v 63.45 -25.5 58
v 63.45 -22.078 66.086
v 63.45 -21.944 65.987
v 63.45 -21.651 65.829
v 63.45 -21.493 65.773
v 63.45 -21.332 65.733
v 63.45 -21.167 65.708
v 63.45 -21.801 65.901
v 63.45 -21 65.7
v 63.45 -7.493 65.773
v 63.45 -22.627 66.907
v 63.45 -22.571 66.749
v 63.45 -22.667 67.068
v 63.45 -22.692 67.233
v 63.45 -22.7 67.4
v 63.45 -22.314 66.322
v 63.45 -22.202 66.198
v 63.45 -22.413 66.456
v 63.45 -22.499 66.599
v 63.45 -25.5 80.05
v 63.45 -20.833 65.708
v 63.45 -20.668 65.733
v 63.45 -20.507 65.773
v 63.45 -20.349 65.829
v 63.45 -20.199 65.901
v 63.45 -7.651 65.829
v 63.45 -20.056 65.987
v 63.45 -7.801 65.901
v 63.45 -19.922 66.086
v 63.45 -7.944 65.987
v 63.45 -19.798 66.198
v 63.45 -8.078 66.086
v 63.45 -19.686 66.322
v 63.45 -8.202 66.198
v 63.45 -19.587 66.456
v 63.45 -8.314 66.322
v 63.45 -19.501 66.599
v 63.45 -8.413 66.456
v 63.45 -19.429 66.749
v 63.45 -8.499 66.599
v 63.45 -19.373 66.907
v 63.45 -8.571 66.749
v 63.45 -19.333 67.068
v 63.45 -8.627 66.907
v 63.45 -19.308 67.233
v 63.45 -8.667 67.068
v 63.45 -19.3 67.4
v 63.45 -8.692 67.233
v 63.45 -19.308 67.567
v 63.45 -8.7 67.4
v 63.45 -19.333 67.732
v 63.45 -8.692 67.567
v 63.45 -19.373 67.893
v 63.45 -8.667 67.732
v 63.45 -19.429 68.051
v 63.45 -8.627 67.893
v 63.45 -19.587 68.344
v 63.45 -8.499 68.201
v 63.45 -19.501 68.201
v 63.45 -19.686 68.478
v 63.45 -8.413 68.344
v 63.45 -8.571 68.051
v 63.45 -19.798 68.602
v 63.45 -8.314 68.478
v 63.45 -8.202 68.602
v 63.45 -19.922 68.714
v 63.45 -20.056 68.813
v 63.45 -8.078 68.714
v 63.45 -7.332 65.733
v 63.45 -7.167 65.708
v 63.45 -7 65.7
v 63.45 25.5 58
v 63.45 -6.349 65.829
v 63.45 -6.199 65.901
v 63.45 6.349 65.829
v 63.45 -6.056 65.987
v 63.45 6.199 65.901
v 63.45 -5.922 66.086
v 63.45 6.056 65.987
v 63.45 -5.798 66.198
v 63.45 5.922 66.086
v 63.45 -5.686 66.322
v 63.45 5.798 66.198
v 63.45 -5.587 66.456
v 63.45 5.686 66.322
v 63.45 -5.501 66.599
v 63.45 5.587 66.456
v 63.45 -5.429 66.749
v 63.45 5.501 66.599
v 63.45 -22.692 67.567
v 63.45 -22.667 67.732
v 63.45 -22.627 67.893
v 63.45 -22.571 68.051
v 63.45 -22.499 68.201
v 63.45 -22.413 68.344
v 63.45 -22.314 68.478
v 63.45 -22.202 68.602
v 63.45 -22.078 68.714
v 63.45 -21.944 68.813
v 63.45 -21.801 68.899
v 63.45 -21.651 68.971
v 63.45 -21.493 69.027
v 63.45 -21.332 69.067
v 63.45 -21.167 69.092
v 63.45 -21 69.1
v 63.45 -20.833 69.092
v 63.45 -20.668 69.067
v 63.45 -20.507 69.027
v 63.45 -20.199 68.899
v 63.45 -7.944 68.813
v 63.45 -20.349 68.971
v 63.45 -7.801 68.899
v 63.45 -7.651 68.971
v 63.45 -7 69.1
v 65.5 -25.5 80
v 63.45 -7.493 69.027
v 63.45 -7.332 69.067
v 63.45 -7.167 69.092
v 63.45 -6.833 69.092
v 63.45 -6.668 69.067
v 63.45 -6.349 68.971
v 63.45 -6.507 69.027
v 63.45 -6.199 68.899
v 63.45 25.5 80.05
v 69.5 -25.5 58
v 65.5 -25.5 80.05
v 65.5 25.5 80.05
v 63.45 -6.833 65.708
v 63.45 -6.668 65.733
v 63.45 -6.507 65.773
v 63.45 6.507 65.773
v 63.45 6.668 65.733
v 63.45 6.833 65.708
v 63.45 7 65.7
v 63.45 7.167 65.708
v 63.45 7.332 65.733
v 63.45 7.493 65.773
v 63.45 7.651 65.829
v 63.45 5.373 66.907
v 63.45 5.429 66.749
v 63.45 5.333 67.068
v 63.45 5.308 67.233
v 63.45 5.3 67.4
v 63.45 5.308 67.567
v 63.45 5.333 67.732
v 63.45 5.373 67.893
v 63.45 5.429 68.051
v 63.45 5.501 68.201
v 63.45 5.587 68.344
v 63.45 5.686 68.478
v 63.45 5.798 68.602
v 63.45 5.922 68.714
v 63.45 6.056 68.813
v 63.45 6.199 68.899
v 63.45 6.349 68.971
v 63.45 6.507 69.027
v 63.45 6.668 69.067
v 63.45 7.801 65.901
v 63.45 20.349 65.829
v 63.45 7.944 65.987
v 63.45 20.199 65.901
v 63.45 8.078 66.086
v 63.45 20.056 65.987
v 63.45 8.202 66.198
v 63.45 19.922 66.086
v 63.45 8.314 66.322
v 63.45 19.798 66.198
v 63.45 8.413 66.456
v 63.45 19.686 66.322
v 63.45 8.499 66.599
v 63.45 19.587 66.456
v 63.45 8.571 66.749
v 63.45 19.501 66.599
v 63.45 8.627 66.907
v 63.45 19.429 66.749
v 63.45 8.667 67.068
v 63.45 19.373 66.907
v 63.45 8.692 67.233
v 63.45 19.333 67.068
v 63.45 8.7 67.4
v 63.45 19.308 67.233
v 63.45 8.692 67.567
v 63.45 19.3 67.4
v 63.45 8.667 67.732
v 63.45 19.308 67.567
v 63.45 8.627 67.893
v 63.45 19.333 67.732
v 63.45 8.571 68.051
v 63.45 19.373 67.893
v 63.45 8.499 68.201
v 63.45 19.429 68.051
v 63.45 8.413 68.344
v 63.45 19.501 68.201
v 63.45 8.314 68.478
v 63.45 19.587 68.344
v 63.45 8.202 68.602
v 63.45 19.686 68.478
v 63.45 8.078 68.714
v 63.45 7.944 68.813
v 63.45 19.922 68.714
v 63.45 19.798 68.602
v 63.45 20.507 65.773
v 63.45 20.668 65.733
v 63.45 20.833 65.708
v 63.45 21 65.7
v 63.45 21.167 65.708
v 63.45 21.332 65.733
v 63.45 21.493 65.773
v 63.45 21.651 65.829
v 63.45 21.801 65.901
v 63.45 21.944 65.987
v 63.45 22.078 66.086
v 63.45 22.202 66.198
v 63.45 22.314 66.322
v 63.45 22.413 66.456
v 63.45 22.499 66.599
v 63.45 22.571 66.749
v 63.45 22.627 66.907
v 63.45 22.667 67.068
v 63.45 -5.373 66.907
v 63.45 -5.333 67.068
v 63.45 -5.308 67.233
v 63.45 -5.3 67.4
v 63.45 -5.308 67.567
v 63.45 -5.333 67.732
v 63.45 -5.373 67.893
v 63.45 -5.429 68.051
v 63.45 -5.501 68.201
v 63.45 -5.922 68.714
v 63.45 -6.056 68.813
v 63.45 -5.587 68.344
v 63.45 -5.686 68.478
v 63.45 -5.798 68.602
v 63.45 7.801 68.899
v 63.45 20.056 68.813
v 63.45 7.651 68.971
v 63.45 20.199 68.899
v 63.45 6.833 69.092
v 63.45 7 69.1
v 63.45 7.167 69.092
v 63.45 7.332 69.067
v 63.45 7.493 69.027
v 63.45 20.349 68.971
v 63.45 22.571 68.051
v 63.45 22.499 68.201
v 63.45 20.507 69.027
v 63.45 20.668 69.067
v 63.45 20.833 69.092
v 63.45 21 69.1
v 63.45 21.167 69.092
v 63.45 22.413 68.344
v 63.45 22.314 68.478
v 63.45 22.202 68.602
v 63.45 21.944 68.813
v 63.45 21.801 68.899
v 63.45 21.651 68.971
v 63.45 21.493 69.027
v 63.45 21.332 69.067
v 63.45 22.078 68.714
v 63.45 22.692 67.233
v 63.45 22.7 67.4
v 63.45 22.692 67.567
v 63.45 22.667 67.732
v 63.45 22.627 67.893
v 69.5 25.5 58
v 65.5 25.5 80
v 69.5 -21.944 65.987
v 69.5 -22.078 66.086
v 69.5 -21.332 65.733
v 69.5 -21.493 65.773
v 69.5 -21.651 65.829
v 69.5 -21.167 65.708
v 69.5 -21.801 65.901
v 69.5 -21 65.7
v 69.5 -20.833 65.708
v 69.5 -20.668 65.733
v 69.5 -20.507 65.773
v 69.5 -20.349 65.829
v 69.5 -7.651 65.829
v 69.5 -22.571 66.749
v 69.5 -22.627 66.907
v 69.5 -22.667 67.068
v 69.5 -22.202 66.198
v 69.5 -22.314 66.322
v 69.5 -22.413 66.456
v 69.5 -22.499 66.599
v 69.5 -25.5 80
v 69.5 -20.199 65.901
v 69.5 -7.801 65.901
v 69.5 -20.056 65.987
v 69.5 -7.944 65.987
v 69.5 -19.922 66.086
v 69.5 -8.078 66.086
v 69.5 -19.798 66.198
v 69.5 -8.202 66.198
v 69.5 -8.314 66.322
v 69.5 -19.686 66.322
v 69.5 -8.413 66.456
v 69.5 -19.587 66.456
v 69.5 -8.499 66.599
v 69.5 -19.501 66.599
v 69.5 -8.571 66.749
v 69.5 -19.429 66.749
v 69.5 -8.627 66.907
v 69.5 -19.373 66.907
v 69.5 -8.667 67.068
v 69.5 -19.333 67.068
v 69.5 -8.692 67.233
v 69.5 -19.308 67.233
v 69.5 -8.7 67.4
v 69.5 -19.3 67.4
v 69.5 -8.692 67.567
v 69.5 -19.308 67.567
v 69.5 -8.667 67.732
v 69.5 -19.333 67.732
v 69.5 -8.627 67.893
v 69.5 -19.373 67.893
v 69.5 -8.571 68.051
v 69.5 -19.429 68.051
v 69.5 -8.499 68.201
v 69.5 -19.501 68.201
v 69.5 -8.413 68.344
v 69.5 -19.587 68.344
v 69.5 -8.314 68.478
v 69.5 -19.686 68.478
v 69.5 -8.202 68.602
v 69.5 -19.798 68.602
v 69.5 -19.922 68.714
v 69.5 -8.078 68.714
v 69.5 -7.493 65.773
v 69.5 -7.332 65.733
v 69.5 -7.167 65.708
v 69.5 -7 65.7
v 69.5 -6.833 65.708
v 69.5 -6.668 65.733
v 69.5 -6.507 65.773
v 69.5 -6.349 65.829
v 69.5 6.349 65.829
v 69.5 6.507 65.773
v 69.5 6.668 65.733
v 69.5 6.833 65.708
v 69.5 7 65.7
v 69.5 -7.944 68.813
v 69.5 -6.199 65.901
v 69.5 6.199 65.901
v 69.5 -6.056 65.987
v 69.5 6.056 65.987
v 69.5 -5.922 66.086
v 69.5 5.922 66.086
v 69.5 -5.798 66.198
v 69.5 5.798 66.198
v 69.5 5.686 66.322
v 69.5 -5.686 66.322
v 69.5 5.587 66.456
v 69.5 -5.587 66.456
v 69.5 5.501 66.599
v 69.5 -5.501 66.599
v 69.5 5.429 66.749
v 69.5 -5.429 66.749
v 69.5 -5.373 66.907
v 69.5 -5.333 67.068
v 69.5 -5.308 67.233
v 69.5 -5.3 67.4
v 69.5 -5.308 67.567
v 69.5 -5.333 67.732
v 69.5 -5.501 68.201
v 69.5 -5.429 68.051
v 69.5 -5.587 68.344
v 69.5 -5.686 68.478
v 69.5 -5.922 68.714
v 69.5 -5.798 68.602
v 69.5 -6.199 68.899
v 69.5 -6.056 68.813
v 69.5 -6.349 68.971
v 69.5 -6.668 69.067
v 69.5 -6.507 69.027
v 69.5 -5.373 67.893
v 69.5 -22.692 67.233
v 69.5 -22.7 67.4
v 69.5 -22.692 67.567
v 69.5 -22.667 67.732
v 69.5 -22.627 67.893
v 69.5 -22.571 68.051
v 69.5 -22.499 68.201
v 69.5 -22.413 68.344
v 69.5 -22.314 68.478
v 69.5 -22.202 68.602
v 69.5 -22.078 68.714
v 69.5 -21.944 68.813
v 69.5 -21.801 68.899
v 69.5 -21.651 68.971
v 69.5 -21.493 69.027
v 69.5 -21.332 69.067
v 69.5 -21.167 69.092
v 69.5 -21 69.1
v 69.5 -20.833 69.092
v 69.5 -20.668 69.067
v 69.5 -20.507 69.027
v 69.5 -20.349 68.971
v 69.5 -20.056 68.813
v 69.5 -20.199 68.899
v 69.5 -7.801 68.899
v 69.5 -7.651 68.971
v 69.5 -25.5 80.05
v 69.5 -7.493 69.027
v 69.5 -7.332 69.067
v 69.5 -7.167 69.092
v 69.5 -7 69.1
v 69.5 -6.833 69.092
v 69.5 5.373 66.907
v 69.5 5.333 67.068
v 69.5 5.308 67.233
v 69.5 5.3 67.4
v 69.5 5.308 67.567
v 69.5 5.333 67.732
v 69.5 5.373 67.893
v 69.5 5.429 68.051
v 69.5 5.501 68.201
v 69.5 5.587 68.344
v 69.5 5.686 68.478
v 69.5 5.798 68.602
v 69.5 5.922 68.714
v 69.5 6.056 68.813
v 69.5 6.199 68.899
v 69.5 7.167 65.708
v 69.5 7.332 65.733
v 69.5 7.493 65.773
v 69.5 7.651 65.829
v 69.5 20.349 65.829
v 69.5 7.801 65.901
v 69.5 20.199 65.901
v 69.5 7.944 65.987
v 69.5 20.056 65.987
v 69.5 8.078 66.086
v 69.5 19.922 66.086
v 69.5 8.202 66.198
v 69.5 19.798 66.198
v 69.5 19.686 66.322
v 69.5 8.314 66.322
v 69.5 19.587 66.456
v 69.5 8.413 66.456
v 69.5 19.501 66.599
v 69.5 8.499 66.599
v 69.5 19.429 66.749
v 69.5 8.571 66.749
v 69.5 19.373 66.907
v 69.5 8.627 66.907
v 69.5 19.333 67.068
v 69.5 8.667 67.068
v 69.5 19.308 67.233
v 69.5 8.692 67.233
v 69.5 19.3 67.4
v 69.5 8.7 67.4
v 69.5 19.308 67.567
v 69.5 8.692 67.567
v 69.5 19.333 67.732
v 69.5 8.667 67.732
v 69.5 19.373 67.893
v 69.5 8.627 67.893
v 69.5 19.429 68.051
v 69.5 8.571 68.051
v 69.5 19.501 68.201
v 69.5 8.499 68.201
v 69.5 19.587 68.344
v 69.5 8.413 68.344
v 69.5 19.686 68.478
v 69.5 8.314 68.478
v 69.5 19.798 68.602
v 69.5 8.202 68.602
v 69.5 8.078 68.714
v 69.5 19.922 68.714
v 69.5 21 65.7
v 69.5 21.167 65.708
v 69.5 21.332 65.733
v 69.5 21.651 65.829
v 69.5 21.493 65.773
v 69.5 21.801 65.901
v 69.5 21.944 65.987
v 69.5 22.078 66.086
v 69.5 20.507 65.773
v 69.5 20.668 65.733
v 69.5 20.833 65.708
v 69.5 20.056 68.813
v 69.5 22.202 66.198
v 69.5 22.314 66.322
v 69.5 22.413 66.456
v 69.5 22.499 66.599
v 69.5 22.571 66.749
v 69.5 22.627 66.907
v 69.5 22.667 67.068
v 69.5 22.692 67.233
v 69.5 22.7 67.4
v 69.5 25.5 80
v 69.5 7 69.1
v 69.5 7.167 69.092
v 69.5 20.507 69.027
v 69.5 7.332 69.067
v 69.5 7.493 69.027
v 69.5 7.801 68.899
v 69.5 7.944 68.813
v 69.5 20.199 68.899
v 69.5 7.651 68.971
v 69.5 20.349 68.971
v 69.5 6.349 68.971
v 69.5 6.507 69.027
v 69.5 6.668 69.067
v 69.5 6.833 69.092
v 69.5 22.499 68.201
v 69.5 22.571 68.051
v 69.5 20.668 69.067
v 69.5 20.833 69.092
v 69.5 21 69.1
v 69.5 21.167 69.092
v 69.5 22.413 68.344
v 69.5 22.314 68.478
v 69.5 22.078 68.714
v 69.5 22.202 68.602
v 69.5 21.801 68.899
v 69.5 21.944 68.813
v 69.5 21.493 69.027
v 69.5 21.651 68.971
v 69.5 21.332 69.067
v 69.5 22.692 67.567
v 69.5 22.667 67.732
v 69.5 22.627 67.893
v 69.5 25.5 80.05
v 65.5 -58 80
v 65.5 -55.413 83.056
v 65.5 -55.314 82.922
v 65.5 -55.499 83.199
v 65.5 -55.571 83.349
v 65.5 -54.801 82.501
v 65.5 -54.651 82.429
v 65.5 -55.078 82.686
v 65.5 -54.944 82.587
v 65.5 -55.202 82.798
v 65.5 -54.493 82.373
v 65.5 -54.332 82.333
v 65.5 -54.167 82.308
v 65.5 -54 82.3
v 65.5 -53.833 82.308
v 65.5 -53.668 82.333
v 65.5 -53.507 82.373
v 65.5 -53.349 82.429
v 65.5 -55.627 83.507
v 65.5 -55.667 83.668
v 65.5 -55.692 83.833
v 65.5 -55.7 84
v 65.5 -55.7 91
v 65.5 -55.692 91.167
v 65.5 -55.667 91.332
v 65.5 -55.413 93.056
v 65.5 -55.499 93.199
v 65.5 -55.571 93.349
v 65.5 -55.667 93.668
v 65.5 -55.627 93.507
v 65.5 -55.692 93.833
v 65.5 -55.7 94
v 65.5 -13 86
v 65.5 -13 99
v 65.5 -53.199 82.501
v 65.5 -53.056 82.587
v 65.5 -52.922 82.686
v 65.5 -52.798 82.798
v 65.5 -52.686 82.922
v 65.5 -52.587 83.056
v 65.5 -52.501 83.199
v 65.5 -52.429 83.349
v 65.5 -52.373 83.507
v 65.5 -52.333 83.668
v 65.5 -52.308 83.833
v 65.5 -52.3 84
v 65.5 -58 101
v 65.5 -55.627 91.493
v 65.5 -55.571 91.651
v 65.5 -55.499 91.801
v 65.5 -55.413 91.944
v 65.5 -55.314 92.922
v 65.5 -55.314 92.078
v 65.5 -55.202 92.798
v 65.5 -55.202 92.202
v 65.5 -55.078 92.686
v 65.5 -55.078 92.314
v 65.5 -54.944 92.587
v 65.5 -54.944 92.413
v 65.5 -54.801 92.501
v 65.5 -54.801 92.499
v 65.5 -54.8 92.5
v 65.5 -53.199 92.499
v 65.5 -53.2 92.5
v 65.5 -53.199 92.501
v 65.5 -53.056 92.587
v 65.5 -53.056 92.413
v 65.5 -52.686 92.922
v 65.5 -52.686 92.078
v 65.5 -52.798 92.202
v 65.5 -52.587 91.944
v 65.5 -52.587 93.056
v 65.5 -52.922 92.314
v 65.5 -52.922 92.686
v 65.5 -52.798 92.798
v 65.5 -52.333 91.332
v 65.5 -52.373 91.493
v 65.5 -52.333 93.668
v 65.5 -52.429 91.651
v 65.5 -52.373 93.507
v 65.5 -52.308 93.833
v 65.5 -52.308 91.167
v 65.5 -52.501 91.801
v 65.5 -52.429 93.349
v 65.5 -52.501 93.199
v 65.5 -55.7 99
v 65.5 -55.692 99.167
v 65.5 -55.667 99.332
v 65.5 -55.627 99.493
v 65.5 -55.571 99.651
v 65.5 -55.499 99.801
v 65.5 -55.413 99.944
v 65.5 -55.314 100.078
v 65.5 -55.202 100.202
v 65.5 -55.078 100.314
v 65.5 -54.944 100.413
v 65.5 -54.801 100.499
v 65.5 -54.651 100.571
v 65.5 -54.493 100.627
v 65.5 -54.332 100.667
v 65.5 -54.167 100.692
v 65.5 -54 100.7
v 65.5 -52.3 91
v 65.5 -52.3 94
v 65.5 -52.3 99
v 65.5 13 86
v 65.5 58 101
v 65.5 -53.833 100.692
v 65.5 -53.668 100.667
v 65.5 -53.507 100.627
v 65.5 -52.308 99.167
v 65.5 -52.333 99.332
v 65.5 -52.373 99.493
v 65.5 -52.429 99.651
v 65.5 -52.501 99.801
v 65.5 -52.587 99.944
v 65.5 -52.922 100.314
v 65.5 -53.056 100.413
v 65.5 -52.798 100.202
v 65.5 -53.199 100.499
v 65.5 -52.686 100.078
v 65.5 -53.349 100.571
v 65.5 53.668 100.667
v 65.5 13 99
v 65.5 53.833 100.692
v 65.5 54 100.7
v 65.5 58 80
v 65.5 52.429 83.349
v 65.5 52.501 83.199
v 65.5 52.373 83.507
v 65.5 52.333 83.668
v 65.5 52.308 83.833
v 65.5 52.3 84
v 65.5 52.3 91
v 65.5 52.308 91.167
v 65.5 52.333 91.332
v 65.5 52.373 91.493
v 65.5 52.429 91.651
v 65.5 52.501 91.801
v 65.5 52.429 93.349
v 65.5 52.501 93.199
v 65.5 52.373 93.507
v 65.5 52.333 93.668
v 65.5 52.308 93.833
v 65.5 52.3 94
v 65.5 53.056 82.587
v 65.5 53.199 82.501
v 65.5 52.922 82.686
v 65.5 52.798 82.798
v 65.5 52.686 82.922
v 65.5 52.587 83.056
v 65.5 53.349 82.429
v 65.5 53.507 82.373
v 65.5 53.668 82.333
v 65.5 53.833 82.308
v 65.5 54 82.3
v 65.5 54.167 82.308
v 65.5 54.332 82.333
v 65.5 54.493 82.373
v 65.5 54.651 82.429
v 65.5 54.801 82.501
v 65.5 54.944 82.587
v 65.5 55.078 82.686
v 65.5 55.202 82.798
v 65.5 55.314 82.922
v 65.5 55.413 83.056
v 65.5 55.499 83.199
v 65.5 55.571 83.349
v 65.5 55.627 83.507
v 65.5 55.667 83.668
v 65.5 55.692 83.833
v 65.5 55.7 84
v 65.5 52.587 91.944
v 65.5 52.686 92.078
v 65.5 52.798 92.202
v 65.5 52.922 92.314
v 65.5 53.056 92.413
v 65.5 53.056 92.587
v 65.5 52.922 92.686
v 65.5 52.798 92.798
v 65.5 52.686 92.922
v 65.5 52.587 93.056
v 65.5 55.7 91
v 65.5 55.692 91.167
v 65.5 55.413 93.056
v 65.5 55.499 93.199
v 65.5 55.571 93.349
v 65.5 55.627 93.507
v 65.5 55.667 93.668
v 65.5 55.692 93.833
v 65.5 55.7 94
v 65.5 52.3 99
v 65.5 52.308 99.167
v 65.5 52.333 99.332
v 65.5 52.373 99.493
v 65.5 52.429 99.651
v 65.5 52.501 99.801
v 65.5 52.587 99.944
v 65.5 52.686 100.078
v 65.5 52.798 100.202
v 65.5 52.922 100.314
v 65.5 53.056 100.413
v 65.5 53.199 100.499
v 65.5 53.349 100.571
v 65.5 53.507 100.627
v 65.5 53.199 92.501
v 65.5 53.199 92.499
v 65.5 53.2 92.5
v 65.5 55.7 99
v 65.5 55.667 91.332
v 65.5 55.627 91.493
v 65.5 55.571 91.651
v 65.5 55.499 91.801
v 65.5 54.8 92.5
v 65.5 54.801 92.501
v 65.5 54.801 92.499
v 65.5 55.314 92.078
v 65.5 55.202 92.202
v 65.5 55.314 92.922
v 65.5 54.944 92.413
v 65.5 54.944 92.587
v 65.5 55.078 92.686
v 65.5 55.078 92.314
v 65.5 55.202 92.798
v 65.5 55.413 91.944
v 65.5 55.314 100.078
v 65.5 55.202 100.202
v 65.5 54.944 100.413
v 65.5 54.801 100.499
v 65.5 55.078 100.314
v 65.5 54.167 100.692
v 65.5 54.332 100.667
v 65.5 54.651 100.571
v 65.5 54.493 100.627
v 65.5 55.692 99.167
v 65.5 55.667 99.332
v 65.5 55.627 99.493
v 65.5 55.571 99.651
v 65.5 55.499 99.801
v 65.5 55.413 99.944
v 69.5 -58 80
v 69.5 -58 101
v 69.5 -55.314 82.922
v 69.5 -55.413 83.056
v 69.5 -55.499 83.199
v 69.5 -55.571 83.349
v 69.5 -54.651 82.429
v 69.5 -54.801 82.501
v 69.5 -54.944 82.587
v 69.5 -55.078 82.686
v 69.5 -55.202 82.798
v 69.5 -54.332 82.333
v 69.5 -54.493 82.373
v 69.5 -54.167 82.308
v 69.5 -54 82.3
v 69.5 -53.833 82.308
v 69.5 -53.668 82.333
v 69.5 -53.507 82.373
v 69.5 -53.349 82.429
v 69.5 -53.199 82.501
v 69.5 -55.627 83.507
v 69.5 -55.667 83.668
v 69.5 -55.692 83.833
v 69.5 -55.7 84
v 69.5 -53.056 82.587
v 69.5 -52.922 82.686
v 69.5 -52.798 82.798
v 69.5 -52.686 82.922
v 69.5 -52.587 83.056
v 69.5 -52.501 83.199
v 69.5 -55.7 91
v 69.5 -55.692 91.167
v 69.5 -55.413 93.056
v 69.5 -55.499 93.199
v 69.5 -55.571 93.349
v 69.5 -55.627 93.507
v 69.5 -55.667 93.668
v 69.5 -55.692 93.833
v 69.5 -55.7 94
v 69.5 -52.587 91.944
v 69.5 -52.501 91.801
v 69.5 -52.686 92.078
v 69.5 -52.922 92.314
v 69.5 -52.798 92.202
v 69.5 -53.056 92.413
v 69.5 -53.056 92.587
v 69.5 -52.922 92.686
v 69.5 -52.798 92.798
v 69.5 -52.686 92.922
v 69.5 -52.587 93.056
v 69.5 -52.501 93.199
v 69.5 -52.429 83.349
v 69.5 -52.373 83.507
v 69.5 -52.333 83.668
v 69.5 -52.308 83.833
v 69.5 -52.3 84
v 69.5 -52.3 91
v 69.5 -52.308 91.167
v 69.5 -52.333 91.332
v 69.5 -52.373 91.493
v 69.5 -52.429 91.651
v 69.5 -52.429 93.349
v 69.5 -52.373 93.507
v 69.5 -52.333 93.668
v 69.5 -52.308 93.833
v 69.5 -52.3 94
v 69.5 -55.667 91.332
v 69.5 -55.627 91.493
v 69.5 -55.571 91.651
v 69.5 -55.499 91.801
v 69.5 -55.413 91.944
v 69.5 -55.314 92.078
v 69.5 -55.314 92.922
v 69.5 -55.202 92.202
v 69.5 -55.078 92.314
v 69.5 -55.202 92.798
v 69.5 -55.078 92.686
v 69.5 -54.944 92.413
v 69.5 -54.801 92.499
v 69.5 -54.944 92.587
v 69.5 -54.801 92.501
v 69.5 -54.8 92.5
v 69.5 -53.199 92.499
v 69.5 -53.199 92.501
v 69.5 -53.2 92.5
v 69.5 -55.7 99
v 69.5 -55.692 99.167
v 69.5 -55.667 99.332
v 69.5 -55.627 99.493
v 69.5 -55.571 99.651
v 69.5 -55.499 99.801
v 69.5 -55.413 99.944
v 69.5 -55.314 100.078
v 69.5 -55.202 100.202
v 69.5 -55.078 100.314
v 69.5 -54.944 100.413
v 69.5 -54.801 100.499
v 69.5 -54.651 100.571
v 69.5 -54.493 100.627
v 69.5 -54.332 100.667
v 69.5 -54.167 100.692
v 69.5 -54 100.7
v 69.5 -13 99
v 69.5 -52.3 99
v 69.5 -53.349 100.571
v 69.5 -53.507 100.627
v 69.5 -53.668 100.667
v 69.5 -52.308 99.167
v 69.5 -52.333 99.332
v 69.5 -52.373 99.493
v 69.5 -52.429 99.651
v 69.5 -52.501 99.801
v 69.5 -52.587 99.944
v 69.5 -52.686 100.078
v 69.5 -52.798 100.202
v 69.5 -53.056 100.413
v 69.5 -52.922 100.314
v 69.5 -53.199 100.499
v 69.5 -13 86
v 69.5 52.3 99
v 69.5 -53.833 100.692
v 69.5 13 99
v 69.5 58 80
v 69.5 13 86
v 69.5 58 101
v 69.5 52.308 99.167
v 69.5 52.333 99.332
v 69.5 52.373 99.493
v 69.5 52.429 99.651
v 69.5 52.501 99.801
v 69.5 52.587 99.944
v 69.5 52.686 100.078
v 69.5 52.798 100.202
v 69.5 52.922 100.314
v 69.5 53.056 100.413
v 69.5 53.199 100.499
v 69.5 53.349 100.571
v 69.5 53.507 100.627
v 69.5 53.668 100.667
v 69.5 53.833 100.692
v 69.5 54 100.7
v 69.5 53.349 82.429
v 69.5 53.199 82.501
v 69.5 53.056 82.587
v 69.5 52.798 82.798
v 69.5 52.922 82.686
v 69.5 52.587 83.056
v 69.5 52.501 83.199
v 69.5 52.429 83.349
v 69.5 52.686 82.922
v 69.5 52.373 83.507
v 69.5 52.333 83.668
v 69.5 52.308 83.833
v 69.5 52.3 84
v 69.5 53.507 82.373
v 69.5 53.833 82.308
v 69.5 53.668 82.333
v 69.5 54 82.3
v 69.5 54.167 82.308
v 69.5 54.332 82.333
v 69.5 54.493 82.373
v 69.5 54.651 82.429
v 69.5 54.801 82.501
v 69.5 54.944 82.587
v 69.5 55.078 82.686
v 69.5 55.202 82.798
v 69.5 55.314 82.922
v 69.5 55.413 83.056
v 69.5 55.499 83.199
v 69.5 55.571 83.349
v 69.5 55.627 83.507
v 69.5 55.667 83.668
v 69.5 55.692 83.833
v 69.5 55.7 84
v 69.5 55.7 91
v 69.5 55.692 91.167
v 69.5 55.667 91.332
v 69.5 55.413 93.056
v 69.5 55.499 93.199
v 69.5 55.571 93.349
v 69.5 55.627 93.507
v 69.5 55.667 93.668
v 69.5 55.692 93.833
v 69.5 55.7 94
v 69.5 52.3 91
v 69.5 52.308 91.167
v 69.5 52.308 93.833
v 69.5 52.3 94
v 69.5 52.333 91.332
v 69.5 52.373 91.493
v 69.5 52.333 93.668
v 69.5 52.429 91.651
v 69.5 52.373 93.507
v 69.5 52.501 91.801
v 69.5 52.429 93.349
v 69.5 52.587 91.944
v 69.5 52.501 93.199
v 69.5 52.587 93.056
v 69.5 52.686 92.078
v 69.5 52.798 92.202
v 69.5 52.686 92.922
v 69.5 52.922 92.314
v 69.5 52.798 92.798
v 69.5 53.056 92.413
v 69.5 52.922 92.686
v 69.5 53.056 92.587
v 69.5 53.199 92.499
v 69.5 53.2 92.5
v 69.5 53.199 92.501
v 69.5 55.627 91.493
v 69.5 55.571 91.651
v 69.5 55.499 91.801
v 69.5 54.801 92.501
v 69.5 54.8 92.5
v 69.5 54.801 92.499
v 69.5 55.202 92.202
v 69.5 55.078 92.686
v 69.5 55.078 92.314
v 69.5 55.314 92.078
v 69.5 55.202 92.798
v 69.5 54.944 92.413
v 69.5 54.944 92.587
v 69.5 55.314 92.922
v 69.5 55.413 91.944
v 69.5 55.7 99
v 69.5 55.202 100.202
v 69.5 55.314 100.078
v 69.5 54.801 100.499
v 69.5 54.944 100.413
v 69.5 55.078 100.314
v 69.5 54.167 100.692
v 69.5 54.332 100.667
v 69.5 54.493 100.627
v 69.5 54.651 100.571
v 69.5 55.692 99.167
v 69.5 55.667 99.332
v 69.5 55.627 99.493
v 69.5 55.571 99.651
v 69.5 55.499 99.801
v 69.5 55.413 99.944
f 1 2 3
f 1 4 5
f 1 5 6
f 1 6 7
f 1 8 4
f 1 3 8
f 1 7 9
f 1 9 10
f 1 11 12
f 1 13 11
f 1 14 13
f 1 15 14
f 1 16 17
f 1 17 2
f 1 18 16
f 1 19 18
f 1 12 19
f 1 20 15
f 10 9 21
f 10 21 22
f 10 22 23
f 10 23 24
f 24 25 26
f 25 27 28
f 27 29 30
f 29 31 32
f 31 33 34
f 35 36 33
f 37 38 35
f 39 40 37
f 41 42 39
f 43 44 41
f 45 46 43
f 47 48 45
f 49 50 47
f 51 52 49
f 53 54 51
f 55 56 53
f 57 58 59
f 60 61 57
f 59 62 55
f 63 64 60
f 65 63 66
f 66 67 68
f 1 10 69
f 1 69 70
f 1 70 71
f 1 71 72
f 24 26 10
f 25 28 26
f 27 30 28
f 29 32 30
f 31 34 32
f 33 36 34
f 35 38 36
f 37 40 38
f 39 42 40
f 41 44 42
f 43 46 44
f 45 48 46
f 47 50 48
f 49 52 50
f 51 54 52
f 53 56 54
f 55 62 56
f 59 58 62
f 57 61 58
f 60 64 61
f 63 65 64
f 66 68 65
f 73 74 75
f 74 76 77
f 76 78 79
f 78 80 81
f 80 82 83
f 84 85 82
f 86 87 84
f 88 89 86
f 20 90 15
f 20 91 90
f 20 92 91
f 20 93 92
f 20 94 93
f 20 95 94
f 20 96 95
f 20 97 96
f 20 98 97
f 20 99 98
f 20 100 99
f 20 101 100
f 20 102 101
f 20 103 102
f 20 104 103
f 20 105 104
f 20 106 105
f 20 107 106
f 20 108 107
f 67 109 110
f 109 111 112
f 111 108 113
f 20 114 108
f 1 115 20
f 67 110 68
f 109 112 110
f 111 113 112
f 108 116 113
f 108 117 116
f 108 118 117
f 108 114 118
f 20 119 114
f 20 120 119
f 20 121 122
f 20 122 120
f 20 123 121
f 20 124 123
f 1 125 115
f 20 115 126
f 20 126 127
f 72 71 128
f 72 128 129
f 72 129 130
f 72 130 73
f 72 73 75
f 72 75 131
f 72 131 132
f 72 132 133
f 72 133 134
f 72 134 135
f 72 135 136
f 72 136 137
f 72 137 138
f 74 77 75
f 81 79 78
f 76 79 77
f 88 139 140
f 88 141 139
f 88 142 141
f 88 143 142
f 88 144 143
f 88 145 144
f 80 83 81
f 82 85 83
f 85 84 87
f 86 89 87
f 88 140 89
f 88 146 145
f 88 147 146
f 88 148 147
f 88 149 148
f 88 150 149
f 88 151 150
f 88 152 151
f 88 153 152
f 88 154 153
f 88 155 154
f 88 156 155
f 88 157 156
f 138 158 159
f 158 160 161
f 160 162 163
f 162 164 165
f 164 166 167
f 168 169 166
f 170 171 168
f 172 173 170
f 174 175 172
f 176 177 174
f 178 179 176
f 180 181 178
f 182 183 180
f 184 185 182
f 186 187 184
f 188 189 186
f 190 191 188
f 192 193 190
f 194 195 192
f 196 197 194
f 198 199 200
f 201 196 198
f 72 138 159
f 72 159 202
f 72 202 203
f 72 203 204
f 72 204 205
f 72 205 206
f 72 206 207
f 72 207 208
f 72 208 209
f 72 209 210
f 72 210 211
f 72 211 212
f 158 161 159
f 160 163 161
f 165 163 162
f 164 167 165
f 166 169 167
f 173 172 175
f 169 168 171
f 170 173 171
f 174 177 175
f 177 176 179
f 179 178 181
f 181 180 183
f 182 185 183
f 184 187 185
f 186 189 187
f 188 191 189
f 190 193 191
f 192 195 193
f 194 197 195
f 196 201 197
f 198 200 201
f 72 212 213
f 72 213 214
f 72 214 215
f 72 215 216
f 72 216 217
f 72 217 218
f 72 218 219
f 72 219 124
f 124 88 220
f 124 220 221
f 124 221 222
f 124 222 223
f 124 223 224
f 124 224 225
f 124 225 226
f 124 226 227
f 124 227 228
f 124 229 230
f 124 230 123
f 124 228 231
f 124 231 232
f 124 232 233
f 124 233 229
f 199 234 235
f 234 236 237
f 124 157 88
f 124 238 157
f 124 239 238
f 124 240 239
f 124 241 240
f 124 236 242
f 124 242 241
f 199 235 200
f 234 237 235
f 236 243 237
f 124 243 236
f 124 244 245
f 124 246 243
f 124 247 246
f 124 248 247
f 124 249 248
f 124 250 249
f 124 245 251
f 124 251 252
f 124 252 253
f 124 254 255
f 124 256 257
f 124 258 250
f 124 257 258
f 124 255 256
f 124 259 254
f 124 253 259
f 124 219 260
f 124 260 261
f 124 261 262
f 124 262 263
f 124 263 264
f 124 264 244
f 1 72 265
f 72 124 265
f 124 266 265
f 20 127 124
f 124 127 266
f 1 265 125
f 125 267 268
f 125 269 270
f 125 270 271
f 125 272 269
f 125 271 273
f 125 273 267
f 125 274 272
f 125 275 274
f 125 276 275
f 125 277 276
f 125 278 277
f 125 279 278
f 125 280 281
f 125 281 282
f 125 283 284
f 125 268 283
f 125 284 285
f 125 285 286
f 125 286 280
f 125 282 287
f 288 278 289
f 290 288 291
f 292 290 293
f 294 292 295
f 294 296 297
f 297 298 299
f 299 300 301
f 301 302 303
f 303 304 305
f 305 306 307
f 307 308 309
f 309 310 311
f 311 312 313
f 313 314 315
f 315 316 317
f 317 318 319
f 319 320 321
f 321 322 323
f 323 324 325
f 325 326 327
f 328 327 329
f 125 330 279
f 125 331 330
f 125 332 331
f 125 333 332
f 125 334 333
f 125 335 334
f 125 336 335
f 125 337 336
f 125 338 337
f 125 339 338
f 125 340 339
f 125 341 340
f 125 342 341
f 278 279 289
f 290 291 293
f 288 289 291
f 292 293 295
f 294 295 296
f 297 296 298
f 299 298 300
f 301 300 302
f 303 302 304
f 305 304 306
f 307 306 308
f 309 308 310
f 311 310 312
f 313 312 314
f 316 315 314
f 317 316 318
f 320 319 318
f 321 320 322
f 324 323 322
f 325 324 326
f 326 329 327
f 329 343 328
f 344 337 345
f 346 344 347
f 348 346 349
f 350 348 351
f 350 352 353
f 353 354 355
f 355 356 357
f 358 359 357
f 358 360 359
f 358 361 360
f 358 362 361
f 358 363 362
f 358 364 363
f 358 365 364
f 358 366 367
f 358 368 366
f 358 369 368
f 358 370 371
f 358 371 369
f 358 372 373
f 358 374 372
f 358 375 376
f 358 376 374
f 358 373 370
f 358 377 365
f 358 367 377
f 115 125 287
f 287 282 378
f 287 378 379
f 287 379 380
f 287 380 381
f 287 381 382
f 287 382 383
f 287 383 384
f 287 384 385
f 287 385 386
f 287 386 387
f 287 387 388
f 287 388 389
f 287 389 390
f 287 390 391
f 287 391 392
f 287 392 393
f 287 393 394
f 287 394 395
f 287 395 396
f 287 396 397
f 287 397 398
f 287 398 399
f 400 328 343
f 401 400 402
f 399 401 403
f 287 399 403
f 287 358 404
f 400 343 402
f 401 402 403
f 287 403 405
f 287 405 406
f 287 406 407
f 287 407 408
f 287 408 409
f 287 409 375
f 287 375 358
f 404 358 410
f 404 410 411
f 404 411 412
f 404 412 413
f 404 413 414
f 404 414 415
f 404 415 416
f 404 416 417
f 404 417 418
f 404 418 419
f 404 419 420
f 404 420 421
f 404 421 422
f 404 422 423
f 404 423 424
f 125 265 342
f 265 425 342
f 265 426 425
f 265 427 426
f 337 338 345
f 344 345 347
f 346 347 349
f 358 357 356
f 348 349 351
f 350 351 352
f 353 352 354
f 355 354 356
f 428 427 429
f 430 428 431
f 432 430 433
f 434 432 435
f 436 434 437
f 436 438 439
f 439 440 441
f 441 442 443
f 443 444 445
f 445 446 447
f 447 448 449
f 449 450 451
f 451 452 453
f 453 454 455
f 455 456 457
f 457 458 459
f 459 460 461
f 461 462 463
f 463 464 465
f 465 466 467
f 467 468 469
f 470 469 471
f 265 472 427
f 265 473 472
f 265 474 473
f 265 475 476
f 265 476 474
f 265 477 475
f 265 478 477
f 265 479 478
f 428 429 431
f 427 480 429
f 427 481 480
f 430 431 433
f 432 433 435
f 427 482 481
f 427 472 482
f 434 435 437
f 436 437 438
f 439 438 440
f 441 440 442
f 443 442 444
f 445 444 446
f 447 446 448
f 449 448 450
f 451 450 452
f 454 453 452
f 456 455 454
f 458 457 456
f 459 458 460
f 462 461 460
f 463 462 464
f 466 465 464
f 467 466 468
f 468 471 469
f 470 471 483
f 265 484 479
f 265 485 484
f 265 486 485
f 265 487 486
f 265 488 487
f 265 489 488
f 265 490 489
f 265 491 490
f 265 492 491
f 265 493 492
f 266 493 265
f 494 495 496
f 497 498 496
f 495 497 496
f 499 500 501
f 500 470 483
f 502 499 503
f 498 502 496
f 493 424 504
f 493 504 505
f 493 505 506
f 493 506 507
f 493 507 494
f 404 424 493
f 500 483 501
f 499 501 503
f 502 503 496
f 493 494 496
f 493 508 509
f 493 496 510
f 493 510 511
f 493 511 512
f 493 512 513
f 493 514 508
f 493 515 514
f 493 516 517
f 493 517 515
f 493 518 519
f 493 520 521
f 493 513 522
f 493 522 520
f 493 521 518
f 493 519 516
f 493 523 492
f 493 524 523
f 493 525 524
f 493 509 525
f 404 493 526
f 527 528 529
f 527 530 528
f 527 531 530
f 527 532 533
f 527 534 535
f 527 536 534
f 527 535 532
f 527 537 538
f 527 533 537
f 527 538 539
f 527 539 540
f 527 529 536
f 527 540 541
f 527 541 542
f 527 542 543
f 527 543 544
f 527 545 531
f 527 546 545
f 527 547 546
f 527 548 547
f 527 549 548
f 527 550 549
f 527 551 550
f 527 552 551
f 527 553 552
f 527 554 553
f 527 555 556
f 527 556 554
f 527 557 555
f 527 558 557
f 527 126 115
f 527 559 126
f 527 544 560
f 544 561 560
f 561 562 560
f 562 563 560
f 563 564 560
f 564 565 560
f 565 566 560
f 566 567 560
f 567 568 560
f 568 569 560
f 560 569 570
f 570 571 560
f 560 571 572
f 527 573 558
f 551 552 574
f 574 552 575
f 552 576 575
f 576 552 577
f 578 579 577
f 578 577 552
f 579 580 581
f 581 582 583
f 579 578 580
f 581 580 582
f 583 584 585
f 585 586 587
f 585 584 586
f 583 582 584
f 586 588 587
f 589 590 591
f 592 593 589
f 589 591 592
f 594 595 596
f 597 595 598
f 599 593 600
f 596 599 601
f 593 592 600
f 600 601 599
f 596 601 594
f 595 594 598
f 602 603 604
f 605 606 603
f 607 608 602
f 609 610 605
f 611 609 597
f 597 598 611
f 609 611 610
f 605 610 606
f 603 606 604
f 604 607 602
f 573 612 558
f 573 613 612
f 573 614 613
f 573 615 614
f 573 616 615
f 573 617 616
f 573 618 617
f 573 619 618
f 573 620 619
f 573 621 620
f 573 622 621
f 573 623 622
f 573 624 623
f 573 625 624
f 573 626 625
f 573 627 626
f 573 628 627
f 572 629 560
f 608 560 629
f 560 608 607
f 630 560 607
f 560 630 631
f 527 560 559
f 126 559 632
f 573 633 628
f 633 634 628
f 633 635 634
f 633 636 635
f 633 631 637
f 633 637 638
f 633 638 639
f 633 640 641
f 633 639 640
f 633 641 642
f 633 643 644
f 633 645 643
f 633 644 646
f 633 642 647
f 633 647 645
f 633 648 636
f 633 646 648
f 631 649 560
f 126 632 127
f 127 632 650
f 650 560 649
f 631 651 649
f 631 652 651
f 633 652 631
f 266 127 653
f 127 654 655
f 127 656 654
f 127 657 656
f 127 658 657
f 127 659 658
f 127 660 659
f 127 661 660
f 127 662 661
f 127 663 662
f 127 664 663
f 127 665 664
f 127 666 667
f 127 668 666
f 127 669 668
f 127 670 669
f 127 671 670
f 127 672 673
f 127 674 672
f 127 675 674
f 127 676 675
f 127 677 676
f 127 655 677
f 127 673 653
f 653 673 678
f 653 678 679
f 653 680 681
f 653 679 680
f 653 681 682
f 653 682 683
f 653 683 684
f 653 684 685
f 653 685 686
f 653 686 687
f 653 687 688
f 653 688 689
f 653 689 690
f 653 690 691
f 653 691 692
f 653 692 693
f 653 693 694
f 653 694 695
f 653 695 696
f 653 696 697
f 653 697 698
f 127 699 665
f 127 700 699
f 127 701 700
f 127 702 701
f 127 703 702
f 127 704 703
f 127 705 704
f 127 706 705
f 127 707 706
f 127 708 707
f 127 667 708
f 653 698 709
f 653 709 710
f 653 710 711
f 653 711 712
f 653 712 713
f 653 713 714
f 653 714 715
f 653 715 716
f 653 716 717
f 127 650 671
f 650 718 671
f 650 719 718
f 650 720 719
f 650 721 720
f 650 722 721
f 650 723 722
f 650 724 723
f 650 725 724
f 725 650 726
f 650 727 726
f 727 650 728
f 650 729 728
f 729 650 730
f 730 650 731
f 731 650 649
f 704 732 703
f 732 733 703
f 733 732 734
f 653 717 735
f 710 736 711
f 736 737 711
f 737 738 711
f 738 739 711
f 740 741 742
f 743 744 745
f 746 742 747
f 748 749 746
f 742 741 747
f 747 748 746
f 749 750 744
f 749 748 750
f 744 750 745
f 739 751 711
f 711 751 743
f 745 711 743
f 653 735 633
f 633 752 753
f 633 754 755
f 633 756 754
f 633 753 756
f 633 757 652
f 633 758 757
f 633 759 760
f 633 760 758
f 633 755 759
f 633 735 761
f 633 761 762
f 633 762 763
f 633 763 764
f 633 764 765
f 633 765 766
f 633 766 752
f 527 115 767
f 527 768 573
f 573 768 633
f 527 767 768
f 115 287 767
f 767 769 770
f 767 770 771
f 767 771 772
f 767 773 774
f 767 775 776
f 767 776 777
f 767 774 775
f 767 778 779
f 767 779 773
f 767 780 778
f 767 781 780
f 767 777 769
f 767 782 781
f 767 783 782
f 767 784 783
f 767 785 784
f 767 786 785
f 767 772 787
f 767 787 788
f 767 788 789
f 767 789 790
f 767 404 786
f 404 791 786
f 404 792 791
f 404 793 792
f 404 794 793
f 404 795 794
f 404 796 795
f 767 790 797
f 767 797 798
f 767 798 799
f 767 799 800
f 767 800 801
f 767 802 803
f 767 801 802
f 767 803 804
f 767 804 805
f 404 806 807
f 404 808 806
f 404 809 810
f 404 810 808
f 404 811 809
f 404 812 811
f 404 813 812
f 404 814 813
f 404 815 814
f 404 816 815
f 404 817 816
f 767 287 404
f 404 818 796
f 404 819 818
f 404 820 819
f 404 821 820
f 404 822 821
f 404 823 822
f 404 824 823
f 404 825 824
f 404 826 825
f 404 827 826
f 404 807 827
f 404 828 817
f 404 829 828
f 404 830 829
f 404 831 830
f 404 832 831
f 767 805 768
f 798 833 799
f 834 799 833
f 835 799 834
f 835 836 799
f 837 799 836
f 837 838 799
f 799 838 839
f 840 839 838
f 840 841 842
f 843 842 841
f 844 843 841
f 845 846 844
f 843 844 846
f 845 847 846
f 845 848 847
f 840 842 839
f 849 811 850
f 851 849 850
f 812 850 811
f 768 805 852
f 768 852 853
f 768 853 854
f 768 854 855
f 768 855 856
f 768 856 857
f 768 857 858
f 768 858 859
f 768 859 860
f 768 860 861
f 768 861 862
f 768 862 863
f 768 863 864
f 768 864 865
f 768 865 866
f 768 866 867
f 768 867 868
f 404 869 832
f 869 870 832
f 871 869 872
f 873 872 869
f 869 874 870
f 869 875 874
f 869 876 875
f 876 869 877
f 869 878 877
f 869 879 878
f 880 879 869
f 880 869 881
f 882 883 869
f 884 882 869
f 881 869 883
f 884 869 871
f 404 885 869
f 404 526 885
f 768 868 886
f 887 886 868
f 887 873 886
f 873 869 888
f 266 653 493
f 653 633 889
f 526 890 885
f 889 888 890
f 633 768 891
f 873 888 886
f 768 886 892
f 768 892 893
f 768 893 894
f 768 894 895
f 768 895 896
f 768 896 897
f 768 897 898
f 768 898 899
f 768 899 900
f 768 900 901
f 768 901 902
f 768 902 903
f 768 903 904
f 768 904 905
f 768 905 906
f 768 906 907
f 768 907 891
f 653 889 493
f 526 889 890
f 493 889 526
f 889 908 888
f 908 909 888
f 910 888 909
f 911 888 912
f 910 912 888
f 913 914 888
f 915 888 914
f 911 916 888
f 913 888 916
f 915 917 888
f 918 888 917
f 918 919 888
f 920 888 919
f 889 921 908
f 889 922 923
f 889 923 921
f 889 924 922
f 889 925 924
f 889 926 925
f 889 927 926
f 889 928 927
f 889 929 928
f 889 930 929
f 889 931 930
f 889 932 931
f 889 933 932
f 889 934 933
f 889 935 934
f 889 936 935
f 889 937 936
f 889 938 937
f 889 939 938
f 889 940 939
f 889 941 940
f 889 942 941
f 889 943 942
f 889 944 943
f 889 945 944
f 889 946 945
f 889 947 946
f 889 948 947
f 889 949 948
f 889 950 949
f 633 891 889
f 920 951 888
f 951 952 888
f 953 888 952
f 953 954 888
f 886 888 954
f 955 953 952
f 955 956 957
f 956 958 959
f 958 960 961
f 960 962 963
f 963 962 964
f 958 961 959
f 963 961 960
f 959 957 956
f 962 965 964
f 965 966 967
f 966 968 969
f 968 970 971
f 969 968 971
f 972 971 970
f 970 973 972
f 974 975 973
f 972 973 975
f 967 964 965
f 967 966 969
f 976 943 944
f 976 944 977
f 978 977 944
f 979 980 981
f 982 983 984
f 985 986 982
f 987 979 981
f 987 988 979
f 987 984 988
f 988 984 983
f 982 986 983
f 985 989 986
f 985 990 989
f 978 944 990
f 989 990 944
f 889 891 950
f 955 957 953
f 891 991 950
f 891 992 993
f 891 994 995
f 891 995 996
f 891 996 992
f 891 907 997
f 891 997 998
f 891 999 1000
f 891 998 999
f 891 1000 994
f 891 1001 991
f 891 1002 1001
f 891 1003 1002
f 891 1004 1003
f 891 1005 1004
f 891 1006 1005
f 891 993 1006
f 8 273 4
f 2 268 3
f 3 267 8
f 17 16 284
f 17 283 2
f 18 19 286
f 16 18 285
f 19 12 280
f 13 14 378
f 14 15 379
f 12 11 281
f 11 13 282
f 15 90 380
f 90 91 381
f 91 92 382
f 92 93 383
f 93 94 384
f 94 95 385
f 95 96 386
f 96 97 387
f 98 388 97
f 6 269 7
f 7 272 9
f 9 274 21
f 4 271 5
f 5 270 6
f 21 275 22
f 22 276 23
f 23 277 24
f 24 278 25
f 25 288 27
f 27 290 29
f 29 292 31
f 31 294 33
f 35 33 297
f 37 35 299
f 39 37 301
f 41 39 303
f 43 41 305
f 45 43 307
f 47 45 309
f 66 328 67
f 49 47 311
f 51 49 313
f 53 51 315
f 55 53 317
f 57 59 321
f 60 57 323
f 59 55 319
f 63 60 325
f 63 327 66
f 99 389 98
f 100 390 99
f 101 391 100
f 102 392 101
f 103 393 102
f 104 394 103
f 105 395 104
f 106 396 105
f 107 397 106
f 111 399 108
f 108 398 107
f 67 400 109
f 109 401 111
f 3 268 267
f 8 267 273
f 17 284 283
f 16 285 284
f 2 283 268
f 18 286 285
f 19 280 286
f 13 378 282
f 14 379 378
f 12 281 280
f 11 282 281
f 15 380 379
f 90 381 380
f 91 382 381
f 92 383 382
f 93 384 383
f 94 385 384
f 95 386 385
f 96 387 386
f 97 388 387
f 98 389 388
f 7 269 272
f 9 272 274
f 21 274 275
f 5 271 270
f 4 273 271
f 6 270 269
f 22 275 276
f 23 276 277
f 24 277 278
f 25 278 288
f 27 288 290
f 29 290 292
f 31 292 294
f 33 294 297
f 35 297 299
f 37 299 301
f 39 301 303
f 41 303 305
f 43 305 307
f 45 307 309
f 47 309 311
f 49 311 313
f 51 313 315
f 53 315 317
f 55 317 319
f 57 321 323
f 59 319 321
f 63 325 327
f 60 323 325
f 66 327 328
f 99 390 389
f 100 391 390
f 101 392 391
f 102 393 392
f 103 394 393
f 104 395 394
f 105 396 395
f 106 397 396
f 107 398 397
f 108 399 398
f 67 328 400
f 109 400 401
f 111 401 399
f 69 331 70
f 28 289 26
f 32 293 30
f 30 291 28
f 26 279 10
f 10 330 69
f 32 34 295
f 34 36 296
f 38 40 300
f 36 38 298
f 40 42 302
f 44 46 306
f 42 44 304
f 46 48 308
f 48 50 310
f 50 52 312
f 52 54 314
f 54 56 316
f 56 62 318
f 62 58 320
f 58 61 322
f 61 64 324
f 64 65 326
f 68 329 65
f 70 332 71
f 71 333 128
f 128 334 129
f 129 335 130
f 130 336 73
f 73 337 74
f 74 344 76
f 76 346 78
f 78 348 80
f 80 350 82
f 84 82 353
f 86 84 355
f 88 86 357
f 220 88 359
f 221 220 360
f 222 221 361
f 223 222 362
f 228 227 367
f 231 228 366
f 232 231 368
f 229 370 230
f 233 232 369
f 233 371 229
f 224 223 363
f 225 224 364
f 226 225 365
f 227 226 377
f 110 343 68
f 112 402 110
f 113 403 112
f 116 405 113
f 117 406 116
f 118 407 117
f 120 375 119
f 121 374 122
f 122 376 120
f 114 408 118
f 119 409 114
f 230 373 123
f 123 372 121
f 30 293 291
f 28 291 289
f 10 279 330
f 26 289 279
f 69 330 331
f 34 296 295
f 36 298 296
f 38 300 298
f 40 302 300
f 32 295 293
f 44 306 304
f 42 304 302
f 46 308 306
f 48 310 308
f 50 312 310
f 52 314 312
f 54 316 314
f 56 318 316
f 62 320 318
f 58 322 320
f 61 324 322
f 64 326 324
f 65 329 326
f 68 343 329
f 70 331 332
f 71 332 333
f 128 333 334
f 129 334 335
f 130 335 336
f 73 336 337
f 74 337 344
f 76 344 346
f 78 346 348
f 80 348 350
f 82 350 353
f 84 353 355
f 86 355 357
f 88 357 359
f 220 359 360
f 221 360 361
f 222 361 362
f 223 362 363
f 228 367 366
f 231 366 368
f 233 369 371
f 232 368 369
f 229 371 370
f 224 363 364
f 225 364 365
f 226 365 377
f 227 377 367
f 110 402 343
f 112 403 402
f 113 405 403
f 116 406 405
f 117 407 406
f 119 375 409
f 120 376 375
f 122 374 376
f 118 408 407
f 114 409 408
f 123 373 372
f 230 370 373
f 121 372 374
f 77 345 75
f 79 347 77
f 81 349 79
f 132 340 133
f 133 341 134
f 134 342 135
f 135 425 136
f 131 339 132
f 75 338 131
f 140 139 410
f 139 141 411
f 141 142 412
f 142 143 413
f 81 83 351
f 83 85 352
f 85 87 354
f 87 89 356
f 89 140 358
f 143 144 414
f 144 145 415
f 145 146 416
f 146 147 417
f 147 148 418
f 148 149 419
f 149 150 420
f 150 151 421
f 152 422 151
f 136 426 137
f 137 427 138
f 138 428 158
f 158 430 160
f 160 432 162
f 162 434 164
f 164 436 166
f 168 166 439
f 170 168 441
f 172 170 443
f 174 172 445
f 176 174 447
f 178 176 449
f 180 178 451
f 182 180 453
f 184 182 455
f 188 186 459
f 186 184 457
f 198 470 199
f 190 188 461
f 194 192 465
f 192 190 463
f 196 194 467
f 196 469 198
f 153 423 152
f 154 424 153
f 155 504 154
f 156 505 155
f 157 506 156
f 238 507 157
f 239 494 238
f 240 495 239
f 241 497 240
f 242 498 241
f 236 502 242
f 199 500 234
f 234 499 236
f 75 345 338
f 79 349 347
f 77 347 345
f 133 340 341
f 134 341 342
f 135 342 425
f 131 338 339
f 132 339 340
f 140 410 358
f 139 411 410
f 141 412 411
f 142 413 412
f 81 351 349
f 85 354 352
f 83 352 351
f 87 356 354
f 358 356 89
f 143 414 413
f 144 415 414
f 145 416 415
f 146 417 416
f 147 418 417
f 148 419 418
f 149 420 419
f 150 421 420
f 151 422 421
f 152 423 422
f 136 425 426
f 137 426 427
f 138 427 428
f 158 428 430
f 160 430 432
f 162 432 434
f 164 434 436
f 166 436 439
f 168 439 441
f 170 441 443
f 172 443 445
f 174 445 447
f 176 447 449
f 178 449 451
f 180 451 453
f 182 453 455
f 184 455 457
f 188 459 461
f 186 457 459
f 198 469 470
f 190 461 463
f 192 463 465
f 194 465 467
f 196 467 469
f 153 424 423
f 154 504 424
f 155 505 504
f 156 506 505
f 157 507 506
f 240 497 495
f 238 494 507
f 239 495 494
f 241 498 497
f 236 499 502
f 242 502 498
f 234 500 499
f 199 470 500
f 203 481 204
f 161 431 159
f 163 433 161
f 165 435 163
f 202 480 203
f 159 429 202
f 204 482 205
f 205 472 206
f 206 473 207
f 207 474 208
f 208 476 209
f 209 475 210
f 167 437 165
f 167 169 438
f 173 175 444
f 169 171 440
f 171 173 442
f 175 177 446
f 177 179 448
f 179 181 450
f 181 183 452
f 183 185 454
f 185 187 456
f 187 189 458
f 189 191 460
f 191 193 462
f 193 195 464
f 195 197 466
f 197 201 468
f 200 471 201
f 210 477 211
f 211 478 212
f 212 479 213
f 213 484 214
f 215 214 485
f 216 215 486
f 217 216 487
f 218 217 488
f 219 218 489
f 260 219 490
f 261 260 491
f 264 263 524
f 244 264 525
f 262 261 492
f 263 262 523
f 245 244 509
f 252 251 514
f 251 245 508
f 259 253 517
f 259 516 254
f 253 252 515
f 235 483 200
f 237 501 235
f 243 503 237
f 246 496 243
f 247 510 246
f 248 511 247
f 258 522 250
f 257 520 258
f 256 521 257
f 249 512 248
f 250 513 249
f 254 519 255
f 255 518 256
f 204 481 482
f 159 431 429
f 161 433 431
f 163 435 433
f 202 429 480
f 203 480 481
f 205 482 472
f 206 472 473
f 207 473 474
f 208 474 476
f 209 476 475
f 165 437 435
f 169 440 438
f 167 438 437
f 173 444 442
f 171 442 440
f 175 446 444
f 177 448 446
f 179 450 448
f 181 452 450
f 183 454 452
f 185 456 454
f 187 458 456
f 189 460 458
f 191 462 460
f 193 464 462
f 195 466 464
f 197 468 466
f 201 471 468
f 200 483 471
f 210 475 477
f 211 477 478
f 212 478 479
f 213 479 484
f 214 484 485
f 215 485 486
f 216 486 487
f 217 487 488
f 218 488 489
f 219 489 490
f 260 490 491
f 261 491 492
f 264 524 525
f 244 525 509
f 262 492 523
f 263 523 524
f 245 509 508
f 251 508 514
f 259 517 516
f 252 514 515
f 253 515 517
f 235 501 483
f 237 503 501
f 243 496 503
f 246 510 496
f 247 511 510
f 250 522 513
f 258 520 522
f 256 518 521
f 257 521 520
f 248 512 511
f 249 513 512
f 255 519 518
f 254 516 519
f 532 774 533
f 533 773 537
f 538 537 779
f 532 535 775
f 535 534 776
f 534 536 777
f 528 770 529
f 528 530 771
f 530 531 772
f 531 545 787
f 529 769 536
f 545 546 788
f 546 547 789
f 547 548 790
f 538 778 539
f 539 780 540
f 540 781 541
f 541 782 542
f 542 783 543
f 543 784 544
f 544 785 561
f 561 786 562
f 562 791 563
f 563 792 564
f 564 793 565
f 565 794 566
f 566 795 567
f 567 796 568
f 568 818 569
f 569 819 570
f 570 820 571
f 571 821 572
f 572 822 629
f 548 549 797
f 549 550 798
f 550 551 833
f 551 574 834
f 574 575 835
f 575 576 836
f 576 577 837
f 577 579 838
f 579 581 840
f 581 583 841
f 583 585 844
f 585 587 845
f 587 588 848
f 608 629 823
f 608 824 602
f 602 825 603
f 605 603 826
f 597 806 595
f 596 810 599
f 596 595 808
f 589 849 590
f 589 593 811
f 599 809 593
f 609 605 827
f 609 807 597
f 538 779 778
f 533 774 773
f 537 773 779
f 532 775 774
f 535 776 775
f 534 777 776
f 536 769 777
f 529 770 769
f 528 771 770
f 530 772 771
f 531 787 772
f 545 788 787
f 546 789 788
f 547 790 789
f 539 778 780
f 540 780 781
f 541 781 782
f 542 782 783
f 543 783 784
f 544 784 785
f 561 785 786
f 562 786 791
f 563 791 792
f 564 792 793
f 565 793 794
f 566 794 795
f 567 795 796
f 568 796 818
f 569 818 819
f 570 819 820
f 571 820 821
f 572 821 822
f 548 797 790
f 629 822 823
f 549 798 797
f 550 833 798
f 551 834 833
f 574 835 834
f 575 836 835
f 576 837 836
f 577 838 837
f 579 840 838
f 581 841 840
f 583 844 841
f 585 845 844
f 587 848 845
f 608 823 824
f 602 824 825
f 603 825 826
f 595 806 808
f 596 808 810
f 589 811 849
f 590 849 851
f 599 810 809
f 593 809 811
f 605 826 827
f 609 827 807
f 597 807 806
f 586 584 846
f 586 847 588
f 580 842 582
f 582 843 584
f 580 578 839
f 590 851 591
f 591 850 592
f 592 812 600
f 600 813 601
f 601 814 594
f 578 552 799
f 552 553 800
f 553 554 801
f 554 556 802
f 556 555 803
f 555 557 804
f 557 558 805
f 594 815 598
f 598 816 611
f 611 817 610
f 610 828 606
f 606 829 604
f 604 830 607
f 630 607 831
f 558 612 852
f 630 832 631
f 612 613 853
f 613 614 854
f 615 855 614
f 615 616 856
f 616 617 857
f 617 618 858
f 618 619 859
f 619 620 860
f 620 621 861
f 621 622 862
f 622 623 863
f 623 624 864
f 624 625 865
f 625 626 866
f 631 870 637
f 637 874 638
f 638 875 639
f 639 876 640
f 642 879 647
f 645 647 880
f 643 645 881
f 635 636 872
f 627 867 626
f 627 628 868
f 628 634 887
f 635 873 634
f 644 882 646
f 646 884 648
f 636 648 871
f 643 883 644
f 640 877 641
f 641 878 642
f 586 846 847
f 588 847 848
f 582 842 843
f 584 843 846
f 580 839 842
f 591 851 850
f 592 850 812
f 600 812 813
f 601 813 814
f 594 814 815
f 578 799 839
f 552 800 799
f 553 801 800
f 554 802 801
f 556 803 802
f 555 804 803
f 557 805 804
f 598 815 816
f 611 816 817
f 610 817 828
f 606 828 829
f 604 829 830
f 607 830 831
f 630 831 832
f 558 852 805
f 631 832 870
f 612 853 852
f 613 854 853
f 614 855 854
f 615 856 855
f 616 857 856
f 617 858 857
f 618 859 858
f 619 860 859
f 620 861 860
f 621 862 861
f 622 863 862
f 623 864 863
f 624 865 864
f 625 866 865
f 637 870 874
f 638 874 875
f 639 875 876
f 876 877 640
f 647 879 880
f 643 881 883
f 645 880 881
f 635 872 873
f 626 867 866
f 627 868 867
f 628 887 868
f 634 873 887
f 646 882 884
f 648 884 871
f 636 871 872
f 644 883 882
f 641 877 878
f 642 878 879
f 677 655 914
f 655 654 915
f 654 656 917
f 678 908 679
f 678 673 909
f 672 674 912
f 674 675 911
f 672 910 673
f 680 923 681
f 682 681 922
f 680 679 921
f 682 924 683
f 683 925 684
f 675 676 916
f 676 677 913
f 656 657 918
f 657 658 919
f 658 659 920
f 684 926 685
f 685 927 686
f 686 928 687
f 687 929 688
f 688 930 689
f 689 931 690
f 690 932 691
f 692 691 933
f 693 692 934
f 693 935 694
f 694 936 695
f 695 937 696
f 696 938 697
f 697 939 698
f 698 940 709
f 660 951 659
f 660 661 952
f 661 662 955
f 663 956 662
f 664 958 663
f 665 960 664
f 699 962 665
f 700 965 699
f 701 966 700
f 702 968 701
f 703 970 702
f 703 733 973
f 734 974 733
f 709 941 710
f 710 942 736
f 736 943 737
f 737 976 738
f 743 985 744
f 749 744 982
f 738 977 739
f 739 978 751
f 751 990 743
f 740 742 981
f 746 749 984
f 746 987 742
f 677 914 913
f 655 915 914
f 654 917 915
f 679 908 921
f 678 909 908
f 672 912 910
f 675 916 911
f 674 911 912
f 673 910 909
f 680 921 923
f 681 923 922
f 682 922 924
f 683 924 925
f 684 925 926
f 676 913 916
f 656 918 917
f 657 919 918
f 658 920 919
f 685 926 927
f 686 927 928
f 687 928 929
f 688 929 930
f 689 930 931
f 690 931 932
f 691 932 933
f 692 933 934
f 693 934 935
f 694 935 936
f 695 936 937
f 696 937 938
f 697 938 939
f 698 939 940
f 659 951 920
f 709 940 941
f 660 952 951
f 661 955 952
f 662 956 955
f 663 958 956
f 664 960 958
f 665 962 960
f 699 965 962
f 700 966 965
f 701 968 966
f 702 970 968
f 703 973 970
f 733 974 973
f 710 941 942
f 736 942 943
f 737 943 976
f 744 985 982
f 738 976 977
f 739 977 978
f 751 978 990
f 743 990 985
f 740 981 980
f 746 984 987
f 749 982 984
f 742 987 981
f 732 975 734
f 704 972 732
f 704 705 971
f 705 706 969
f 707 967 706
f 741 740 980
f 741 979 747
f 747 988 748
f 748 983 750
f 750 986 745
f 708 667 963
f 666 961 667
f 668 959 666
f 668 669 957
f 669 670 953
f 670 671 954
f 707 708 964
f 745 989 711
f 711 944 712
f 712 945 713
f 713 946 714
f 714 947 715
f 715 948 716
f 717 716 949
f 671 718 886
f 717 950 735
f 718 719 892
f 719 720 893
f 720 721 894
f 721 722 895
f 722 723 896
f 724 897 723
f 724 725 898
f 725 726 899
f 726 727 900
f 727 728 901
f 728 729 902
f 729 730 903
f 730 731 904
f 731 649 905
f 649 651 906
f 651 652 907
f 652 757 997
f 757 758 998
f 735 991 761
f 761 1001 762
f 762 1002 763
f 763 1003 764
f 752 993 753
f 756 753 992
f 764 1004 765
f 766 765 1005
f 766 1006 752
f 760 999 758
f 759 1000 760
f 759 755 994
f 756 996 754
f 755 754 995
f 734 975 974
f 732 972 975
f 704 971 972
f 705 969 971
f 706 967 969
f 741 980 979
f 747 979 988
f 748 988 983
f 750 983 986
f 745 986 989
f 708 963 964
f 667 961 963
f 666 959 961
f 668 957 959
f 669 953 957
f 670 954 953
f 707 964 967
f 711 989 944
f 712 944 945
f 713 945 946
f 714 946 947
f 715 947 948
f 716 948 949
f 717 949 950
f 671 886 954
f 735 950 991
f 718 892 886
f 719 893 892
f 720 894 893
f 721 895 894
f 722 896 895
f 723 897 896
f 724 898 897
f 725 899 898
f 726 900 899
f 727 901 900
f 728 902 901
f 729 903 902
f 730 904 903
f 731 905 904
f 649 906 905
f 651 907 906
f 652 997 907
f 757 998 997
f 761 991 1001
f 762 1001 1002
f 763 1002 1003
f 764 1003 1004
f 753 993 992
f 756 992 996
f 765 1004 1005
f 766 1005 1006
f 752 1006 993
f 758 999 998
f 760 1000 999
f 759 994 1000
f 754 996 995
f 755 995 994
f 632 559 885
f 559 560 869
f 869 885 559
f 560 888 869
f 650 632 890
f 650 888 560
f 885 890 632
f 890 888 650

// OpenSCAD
// =============================================================================
// NOVA chassis — D456 HEAD BRACKET v3: PERISCOPE (screw-in, user call)
// =============================================================================
// Top-level design: docs/design-outline.md. Trunk frame (+x FRONT).
// D456 124 x 26 x 29. Mount = the REAR-PANEL 4x M3 corner pattern —
// ⚠ REVIEW (position unverified): the plate carries four 7-long VERTICAL
// SLOTS at y +/-54; CALIPER the real camera before printing, expect to
// touch these numbers.
//
// Gate history (why the camera lives up here):
//   v1 riser-wall z 34..63  -> shoulder shear webs own y +/-51..55 there.
//   v2 under-chin z -16..12 -> the folded FRONT FEMUR is a diagonal bar
//     through that volume from hfe ~+35 (crouch needs +40), tibia crosses
//     the full camera width. No front-fold ROM cap could be tolerated.
//   v3 periscope z 80.5..109.5: above the shoulder deck extension (79.55),
//     below the L2 (114.4). Legs never reach z >= 80 at x < 100.
// KNOWN COST: the camera's top-front corner clips the L2's -45 deg bottom
// cone by ~3.5 deg in the forward sector — rays that would hit ground
// ~150-165mm ahead, i.e. exactly the D456's own prime zone. Accepted
// (same class as the Jetson hood clipping the rear-down cone).
//
// Structure: stem (x 63.45..69.5, y +/-25.5, z 58..80) rises through the
// shoulder-flange center notch against the riser front wall; cross-plate
// (x 65.5..69.5, y +/-58, z 80..101) carries the camera on its front
// face. Plate top 101 clears the mast flare (x < 63.8 below z 101).
// Cable: RIGHT-ANGLE USB-C (BOM) through the plate window (y +/-13,
// z 86..99), drops in front of the stem, into the riser wall's 10x6
// grommet slot at (0, 61.5).
// Mount: 4x M3x10 into the riser row (y -21/-7/+7/+21, z 67.4) — heads
// proud on the stem face, driver passes UNDER the camera (bottom 80.5).
// Camera bolts to the bracket ON THE BENCH first (rear screws are
// unreachable installed); service = the 4 row screws, camera rides along.
// Print: back-face down, zero supports.
// Fit gate: check_fit.py case 8 + crouch sweep (head + camera targets).

$fn = 64;
EPS = 0.05;

STEM_X0 = 63.45;  STEM_X1 = 69.5;    // 0.1 off the riser wall (63.35)
ROW_Y = [-21, -7, 7, 21];  ROW_Z = 67.4;
PLT_X0 = 65.5;  PLT_X1 = 69.5;
PLT_Z0 = 80;  PLT_Z1 = 101;
HALF_W = 58;
SLOT_Y = 54;                          // rear-corner pattern (⚠ caliper)
SLOT_ROWS = [[84, 91], [94, 101 - 2]]; // vertical slot spans (⚠ caliper)
M3_CLEAR = 3.4;

module d456_head() {
    difference() {
        union() {
            // stem through the flange notch, against the riser wall
            translate([STEM_X0, -25.5, 58])
                cube([STEM_X1 - STEM_X0, 51, PLT_Z0 - 58 + EPS]);
            // cross-plate (camera rear face seats on x 69.5)
            translate([PLT_X0, -HALF_W, PLT_Z0])
                cube([PLT_X1 - PLT_X0, 2 * HALF_W, PLT_Z1 - PLT_Z0]);
            // 45-deg wing gussets under the plate ends (print + stiffness)
            for (sy = [-1, 1]) hull() {
                translate([PLT_X0, sy * 25.5 - (sy < 0 ? 0 : 0), PLT_Z0 - EPS])
                    cube([PLT_X1 - PLT_X0, EPS, EPS]);
                translate([PLT_X0, min(sy * HALF_W, sy * 25.5), PLT_Z0])
                    cube([PLT_X1 - PLT_X0, HALF_W - 25.5, EPS]);
            }
        }
        // riser-row screw channels
        for (ry = ROW_Y)
            translate([STEM_X0 - EPS, ry, ROW_Z]) rotate([0, 90, 0])
                cylinder(d = M3_CLEAR, h = STEM_X1 - STEM_X0 + 2 * EPS);
        // camera rear-pattern slots (vertical, absorb the ⚠ unknowns)
        for (sy = [-1, 1], row = SLOT_ROWS) hull() for (rz = row)
            translate([PLT_X0 - EPS, sy * SLOT_Y, rz]) rotate([0, 90, 0])
                cylinder(d = M3_CLEAR, h = PLT_X1 - PLT_X0 + 2 * EPS);
        // cable window
        translate([PLT_X0 - EPS, -13, 86])
            cube([PLT_X1 - PLT_X0 + 2 * EPS, 26, 13]);
    }
}

d456_head();
